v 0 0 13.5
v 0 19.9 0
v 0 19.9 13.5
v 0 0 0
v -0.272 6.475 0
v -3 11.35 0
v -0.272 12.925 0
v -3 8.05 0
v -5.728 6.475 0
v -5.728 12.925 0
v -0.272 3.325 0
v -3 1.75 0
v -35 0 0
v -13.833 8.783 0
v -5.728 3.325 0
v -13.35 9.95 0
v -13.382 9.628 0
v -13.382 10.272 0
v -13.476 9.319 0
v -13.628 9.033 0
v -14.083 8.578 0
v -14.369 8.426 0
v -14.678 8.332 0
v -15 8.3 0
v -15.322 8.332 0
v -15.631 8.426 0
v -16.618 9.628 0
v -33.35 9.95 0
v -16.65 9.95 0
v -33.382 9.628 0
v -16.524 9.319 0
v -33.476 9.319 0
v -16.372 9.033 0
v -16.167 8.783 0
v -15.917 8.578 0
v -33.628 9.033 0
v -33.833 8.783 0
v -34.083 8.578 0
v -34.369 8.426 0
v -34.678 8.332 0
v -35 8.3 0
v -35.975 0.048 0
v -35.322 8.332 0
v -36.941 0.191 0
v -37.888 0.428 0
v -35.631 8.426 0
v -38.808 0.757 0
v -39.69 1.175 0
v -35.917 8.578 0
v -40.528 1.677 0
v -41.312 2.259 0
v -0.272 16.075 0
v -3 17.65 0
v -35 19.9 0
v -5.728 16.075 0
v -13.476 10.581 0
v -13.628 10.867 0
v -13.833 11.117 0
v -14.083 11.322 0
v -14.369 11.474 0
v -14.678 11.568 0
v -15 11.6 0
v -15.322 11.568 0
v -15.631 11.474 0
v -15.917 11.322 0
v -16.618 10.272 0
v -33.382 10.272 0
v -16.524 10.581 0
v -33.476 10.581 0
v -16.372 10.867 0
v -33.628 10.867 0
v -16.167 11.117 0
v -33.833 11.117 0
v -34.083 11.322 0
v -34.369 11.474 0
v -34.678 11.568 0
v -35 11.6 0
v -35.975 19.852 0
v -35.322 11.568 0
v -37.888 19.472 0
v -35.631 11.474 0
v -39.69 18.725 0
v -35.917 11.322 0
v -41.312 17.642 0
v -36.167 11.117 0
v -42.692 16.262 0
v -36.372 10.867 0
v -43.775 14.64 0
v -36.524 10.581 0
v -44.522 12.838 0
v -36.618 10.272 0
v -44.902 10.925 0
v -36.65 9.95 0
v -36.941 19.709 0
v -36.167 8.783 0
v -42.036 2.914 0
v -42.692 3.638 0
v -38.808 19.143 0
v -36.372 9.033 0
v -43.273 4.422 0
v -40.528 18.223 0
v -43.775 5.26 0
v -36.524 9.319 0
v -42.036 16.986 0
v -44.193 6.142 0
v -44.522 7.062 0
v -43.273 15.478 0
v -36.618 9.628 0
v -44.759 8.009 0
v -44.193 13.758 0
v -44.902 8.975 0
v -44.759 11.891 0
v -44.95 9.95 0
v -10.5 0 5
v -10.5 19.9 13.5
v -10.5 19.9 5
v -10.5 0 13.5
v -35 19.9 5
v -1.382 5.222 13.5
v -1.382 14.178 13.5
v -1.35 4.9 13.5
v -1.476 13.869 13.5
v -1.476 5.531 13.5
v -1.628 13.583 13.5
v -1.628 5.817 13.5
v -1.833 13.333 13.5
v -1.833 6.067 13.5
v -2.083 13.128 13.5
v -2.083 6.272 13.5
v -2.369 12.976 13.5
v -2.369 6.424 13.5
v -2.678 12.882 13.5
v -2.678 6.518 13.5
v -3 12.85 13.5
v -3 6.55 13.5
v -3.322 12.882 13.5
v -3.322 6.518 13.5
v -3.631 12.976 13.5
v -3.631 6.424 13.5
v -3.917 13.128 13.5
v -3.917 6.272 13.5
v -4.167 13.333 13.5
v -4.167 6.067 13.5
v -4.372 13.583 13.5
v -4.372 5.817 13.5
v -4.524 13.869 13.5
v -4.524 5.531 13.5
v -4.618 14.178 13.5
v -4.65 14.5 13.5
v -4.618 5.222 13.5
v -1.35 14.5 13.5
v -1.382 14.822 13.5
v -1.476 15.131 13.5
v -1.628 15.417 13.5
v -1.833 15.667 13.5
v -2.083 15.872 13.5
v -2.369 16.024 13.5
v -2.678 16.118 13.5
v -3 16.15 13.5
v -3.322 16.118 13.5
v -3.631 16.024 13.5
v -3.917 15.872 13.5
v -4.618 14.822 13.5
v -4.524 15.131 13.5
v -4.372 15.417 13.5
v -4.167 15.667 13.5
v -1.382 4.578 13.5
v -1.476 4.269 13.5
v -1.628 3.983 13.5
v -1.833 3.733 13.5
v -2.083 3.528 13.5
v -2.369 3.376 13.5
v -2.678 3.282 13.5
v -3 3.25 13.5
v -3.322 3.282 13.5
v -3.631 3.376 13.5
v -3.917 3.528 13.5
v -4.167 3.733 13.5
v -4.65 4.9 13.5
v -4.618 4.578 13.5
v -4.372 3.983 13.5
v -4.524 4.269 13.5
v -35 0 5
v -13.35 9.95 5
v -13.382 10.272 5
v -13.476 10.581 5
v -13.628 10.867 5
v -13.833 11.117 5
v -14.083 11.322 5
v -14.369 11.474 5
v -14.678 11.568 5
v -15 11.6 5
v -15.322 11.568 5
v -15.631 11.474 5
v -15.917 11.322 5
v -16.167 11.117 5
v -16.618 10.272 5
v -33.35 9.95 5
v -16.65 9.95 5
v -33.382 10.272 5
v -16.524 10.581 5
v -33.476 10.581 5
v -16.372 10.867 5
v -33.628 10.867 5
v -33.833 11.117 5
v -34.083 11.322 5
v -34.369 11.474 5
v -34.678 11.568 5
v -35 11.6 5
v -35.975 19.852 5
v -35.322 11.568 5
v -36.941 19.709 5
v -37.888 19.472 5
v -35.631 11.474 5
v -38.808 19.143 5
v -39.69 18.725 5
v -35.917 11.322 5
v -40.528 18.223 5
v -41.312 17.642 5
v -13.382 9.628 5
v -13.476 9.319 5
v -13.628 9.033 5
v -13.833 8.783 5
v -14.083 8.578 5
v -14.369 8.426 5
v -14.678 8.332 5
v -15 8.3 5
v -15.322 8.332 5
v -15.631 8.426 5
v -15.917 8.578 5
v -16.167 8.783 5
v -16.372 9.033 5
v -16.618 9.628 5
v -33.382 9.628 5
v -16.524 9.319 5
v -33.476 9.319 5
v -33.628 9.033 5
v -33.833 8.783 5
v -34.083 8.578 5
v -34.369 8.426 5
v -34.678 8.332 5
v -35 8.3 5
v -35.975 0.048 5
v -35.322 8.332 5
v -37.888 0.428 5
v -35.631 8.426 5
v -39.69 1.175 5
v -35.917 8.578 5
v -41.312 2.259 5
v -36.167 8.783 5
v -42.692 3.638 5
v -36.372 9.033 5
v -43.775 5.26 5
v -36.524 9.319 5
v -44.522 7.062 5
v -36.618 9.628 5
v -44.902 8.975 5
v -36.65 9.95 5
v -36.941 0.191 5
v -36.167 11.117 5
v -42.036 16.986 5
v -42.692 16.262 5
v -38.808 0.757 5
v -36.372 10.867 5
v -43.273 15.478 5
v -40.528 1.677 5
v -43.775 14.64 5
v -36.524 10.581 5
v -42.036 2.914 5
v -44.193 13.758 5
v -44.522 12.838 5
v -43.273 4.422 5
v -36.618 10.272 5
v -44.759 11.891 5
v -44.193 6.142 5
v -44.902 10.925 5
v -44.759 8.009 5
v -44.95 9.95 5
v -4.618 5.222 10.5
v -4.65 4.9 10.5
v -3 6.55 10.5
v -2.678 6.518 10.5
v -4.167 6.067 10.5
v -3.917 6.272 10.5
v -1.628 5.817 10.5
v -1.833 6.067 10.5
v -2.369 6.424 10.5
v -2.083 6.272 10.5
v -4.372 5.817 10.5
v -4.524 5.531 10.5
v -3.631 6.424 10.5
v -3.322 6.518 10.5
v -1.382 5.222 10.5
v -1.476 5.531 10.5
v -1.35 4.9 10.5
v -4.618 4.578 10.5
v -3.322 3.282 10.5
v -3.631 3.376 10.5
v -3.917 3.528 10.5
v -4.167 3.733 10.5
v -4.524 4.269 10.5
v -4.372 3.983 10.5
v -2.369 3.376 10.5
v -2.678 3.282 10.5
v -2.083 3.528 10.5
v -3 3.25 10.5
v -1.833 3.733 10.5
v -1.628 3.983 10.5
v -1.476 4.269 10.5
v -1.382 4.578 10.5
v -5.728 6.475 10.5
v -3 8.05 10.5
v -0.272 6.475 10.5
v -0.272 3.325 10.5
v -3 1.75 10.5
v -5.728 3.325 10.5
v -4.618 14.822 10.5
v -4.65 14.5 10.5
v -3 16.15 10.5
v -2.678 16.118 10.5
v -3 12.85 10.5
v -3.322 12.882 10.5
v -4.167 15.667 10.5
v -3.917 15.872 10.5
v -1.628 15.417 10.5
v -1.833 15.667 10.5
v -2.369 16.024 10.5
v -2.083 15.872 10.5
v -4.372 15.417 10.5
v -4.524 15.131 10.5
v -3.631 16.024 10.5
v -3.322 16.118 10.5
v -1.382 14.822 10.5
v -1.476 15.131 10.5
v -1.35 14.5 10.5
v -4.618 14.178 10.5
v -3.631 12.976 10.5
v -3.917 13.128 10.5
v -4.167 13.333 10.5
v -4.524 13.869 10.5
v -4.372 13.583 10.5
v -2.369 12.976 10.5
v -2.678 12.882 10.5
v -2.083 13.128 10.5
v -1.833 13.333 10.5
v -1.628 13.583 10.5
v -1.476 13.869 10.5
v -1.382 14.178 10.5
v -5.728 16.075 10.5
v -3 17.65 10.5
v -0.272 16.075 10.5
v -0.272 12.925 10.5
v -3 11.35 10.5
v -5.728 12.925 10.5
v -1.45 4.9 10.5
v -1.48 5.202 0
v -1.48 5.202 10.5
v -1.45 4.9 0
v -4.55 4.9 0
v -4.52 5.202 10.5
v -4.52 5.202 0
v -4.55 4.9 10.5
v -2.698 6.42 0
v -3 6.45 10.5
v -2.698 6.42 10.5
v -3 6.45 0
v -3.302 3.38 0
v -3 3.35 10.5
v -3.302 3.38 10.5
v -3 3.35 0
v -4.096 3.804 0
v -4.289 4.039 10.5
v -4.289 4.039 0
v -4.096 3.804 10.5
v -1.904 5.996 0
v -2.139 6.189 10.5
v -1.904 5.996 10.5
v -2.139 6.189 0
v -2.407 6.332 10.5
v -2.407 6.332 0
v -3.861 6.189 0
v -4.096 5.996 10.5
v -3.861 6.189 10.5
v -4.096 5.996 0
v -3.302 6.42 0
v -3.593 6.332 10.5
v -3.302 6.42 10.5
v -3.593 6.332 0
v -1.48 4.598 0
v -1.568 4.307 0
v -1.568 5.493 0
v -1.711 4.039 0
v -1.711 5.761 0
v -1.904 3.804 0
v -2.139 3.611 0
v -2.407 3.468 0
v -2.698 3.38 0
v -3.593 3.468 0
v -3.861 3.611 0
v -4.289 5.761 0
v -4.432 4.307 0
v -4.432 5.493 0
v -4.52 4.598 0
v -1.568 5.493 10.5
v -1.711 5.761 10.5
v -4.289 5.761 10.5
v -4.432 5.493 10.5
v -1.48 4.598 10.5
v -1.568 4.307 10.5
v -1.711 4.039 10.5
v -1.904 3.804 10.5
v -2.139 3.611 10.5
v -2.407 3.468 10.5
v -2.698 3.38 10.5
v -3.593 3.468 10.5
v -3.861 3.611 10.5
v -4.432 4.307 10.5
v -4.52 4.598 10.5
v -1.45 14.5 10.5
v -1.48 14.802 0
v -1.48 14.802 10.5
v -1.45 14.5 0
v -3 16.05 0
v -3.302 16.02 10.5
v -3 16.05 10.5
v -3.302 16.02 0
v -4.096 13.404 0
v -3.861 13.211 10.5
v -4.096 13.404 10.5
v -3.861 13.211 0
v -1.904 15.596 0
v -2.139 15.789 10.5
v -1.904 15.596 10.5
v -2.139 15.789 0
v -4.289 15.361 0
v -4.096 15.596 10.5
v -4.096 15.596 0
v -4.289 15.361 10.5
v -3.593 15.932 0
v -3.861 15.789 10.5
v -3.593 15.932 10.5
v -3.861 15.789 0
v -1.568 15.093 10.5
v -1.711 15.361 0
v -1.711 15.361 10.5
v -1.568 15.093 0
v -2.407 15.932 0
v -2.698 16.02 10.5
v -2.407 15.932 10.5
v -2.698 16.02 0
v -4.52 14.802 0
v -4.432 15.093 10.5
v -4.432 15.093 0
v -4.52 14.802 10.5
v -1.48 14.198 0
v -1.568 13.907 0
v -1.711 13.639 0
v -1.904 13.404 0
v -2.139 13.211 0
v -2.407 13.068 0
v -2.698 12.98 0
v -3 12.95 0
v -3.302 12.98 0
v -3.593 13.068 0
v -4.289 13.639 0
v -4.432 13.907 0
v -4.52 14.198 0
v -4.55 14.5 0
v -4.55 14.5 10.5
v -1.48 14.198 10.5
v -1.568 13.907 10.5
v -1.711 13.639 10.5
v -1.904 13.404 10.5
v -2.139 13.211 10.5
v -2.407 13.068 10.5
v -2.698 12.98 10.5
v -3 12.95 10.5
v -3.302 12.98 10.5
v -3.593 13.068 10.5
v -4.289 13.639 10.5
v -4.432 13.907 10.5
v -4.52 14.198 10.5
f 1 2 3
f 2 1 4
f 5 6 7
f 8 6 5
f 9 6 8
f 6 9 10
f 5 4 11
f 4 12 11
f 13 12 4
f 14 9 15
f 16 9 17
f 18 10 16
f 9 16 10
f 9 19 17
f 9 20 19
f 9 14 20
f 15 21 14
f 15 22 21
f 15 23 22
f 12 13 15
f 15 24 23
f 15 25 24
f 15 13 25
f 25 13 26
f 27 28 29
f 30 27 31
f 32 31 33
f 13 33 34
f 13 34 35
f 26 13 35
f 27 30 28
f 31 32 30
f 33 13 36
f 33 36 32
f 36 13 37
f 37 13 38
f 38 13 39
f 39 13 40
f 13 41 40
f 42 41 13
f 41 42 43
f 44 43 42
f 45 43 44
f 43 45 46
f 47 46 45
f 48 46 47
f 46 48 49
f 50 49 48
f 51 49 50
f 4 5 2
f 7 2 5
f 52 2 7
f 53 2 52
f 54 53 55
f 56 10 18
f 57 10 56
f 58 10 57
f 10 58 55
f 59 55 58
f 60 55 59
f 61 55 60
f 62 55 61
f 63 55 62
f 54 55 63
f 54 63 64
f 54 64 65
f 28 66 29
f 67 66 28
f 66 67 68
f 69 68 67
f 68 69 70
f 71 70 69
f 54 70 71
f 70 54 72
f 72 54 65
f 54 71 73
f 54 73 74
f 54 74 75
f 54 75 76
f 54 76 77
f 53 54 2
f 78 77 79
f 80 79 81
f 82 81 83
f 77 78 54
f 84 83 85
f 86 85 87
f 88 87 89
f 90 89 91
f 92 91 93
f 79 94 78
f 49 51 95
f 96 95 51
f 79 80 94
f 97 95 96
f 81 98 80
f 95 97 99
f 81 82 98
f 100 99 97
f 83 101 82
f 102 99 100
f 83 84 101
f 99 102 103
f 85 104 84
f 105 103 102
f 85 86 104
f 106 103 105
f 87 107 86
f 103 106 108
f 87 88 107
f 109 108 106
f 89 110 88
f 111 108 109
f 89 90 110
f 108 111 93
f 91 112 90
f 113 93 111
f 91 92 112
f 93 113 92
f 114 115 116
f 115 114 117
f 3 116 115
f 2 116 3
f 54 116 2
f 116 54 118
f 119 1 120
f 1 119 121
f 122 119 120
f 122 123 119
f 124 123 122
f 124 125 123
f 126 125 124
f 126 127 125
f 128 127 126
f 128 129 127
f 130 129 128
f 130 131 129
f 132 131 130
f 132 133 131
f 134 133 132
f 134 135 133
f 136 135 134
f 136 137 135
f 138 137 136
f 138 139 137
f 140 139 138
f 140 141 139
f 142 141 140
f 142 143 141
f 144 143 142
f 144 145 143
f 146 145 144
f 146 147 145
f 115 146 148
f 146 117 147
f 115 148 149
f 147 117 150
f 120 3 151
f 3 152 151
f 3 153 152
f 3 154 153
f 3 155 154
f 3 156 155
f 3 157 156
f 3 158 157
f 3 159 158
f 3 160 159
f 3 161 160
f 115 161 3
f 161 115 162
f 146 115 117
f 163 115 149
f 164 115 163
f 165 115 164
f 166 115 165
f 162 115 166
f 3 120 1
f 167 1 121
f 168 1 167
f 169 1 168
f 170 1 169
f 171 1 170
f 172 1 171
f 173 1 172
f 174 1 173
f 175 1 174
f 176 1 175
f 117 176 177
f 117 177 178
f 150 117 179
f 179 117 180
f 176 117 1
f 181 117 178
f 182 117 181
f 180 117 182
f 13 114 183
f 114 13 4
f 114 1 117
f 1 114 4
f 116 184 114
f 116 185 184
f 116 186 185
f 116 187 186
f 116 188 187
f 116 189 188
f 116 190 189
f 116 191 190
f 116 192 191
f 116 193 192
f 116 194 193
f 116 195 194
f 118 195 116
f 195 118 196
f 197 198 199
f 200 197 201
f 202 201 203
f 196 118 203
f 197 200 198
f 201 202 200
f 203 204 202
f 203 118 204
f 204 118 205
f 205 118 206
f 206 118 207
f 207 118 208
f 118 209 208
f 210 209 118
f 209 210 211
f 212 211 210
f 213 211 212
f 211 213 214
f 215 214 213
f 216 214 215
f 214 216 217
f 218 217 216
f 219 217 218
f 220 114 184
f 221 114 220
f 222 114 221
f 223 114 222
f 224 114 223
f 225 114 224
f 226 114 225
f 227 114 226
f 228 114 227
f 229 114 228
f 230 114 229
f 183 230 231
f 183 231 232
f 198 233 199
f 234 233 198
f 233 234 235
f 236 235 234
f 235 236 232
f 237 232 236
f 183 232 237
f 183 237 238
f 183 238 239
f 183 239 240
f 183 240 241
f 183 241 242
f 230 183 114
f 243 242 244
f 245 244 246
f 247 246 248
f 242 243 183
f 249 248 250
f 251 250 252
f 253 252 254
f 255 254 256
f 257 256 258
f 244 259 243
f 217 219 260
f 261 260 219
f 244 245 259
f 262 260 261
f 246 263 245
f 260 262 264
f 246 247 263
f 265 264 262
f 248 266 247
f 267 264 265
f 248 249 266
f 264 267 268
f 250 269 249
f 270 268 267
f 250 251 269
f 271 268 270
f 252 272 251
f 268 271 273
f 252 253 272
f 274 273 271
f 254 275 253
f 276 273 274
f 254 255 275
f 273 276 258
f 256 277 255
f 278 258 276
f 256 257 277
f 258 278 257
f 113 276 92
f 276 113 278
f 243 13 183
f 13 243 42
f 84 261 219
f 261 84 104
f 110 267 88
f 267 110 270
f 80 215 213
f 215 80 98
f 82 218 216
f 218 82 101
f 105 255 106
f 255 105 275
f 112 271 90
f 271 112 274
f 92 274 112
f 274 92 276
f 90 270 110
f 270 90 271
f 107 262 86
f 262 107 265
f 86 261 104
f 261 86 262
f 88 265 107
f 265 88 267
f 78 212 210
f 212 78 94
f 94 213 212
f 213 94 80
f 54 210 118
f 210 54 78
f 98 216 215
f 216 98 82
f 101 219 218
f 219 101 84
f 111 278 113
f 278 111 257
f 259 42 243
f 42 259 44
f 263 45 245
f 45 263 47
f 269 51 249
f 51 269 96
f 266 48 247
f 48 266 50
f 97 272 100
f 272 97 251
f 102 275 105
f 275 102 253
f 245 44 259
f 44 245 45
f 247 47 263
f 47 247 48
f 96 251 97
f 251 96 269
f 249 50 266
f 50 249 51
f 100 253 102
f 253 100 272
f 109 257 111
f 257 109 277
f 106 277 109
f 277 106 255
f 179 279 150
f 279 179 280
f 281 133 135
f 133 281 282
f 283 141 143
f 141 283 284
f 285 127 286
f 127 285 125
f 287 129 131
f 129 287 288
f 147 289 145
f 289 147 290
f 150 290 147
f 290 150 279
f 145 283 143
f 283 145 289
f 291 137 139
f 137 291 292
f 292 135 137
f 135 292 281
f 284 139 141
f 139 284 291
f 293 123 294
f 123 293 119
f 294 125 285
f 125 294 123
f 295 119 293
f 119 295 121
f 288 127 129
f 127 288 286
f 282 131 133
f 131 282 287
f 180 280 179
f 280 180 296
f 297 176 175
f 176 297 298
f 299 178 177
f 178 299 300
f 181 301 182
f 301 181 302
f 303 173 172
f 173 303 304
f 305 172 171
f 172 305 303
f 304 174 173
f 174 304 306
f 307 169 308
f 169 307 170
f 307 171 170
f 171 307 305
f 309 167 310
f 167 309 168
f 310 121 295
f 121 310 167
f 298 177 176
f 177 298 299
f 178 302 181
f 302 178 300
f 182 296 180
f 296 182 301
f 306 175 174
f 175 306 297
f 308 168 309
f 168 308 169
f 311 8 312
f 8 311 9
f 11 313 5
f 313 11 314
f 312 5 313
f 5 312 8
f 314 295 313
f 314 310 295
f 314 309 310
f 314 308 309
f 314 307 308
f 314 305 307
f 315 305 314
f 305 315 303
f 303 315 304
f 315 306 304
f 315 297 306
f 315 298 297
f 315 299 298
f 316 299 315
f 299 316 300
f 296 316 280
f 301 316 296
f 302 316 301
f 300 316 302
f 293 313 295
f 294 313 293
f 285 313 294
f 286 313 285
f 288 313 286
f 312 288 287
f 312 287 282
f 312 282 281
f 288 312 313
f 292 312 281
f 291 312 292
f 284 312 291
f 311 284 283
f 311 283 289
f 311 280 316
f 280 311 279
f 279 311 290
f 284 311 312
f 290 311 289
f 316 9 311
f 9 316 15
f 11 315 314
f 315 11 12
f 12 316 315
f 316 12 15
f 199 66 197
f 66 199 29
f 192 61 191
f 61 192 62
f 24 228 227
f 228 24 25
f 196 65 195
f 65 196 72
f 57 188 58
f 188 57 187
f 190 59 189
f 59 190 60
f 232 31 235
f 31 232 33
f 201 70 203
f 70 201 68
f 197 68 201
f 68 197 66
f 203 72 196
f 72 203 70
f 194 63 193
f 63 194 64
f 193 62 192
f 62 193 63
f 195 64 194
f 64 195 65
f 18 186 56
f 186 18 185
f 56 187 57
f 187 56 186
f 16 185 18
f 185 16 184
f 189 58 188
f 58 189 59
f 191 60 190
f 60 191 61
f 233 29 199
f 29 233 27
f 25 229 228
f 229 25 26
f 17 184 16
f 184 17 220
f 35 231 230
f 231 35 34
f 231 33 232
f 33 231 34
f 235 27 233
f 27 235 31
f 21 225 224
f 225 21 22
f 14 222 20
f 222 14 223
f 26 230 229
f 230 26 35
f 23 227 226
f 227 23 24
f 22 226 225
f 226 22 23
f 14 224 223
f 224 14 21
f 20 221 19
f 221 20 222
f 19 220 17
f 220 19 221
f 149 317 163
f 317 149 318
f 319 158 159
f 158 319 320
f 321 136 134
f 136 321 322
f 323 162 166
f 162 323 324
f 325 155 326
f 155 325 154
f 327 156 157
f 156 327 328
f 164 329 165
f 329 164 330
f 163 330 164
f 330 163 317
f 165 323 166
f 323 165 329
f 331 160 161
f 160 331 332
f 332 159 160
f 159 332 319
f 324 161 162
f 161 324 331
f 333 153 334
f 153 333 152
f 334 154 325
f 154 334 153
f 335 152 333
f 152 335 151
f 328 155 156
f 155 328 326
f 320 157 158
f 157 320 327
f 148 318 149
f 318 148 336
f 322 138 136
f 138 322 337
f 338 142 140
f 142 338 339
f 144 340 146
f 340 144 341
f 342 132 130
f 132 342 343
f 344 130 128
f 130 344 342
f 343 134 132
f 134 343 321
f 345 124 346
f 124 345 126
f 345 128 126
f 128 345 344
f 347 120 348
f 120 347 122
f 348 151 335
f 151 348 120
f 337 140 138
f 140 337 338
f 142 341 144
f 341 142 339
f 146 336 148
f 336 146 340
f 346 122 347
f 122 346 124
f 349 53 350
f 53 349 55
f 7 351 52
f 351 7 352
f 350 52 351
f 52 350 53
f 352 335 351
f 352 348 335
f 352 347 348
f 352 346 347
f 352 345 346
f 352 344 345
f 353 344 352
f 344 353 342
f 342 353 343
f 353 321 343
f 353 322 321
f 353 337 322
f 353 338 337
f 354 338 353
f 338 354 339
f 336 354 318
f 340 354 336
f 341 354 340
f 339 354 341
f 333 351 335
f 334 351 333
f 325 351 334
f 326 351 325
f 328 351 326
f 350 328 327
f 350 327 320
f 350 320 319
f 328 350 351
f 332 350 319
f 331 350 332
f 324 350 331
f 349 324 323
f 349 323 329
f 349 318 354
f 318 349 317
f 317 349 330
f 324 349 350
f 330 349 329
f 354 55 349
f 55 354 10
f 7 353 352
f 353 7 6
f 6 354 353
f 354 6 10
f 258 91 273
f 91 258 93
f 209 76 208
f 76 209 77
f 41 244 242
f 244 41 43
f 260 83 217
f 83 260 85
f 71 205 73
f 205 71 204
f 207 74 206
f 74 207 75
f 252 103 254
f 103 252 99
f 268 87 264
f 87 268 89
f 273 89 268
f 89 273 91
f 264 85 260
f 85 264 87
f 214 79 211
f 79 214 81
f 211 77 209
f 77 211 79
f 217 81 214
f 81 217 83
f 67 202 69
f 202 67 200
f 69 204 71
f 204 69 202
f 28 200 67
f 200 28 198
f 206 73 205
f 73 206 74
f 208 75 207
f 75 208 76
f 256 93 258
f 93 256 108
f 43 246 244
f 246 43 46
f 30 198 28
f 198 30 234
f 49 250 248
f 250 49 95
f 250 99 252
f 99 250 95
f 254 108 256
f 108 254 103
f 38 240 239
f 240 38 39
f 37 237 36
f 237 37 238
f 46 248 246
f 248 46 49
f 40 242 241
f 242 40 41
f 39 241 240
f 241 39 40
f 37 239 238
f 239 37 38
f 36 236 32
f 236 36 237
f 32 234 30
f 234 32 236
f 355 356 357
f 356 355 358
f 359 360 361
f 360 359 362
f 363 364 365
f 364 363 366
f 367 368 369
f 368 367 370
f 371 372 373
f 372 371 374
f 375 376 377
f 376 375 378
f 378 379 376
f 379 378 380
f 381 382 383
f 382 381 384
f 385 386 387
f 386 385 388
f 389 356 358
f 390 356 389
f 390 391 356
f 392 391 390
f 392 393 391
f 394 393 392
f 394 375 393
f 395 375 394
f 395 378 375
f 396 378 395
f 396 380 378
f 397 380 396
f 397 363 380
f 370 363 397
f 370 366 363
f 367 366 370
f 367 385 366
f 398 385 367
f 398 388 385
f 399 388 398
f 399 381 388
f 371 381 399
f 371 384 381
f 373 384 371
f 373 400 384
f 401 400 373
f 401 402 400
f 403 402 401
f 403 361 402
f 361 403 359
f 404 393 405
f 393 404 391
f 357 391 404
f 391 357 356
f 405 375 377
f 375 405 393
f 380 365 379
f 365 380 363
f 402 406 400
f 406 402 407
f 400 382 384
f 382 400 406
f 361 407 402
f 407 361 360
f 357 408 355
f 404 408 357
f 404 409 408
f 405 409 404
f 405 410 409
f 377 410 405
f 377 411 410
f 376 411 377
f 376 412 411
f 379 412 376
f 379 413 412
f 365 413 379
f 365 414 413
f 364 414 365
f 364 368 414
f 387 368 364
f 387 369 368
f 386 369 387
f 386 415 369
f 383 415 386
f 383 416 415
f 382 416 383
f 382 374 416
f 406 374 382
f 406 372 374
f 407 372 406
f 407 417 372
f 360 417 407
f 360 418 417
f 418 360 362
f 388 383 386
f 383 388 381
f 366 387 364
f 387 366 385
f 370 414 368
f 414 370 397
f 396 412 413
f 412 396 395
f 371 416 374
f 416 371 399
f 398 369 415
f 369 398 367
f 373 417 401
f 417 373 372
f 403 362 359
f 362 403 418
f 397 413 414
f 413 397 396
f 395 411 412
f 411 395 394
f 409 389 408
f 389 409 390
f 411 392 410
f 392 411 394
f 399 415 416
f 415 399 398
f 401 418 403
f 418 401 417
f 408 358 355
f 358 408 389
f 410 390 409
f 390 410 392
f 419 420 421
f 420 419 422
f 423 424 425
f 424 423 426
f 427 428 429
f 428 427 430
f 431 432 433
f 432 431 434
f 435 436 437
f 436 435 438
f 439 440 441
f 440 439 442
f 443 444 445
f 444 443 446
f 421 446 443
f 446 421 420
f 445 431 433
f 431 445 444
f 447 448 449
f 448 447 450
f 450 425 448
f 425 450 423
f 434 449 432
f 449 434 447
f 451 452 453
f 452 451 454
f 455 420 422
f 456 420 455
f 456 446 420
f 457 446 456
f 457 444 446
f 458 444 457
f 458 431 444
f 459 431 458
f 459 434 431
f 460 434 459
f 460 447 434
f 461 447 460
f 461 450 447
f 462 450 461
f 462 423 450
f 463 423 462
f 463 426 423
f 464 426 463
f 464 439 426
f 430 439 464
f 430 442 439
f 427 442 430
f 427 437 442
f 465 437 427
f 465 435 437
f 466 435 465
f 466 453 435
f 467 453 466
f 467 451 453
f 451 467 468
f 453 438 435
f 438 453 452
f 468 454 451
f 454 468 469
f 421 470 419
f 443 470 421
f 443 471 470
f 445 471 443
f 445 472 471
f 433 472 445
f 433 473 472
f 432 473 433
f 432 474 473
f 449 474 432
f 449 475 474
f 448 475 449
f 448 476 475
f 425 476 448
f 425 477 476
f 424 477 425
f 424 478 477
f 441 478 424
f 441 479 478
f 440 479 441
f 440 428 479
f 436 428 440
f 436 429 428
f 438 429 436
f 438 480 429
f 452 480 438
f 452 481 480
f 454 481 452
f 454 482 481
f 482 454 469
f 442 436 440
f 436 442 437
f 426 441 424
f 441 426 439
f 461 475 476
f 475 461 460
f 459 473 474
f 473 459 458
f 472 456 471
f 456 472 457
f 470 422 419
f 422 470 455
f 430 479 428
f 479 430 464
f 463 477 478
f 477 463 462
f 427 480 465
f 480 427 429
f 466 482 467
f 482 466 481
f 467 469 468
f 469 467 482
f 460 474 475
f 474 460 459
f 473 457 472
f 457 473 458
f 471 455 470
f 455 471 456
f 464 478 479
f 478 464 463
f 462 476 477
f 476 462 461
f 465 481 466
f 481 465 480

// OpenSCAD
module x_endstop_holder() {
    difference() {
        union() {
            translate([0, 0, -13.5]) cube([10.5, 19.9, 13.5]);
            translate([0, 0, -5]) cube([35, 19.9, 5]);
            translate([35, 19.9/2, -5]) rotate([0, 0, 0]) cylinder(d=19.9, h=5, $fn=64);
        }
        for(i=[0, 1]) {
           translate([10.5-7.5, i*9.6+4.9, -14]) cylinder(d=3.3, h=15, $fn=32);
           translate([10.5-7.5, i*9.6+4.9, -13.5+3]) rotate([0, 0, 30]) cylinder(d=6.3, h=19, $fn=6);
           translate([i*20+15, 19.9/2, -6]) cylinder(d=3.3, h=7, $fn=32); 
        }
        //translate([-1, 0, -30]) cube([4, 15, 30]);
    }
}

rotate([0, 180, 0]) x_endstop_holder();
for(i=[0, 1]) {
    translate([-10.5+7.5, i*9.6+4.9, 0]) cylinder(d=3.1, h=10.5, $fn=32);
}
